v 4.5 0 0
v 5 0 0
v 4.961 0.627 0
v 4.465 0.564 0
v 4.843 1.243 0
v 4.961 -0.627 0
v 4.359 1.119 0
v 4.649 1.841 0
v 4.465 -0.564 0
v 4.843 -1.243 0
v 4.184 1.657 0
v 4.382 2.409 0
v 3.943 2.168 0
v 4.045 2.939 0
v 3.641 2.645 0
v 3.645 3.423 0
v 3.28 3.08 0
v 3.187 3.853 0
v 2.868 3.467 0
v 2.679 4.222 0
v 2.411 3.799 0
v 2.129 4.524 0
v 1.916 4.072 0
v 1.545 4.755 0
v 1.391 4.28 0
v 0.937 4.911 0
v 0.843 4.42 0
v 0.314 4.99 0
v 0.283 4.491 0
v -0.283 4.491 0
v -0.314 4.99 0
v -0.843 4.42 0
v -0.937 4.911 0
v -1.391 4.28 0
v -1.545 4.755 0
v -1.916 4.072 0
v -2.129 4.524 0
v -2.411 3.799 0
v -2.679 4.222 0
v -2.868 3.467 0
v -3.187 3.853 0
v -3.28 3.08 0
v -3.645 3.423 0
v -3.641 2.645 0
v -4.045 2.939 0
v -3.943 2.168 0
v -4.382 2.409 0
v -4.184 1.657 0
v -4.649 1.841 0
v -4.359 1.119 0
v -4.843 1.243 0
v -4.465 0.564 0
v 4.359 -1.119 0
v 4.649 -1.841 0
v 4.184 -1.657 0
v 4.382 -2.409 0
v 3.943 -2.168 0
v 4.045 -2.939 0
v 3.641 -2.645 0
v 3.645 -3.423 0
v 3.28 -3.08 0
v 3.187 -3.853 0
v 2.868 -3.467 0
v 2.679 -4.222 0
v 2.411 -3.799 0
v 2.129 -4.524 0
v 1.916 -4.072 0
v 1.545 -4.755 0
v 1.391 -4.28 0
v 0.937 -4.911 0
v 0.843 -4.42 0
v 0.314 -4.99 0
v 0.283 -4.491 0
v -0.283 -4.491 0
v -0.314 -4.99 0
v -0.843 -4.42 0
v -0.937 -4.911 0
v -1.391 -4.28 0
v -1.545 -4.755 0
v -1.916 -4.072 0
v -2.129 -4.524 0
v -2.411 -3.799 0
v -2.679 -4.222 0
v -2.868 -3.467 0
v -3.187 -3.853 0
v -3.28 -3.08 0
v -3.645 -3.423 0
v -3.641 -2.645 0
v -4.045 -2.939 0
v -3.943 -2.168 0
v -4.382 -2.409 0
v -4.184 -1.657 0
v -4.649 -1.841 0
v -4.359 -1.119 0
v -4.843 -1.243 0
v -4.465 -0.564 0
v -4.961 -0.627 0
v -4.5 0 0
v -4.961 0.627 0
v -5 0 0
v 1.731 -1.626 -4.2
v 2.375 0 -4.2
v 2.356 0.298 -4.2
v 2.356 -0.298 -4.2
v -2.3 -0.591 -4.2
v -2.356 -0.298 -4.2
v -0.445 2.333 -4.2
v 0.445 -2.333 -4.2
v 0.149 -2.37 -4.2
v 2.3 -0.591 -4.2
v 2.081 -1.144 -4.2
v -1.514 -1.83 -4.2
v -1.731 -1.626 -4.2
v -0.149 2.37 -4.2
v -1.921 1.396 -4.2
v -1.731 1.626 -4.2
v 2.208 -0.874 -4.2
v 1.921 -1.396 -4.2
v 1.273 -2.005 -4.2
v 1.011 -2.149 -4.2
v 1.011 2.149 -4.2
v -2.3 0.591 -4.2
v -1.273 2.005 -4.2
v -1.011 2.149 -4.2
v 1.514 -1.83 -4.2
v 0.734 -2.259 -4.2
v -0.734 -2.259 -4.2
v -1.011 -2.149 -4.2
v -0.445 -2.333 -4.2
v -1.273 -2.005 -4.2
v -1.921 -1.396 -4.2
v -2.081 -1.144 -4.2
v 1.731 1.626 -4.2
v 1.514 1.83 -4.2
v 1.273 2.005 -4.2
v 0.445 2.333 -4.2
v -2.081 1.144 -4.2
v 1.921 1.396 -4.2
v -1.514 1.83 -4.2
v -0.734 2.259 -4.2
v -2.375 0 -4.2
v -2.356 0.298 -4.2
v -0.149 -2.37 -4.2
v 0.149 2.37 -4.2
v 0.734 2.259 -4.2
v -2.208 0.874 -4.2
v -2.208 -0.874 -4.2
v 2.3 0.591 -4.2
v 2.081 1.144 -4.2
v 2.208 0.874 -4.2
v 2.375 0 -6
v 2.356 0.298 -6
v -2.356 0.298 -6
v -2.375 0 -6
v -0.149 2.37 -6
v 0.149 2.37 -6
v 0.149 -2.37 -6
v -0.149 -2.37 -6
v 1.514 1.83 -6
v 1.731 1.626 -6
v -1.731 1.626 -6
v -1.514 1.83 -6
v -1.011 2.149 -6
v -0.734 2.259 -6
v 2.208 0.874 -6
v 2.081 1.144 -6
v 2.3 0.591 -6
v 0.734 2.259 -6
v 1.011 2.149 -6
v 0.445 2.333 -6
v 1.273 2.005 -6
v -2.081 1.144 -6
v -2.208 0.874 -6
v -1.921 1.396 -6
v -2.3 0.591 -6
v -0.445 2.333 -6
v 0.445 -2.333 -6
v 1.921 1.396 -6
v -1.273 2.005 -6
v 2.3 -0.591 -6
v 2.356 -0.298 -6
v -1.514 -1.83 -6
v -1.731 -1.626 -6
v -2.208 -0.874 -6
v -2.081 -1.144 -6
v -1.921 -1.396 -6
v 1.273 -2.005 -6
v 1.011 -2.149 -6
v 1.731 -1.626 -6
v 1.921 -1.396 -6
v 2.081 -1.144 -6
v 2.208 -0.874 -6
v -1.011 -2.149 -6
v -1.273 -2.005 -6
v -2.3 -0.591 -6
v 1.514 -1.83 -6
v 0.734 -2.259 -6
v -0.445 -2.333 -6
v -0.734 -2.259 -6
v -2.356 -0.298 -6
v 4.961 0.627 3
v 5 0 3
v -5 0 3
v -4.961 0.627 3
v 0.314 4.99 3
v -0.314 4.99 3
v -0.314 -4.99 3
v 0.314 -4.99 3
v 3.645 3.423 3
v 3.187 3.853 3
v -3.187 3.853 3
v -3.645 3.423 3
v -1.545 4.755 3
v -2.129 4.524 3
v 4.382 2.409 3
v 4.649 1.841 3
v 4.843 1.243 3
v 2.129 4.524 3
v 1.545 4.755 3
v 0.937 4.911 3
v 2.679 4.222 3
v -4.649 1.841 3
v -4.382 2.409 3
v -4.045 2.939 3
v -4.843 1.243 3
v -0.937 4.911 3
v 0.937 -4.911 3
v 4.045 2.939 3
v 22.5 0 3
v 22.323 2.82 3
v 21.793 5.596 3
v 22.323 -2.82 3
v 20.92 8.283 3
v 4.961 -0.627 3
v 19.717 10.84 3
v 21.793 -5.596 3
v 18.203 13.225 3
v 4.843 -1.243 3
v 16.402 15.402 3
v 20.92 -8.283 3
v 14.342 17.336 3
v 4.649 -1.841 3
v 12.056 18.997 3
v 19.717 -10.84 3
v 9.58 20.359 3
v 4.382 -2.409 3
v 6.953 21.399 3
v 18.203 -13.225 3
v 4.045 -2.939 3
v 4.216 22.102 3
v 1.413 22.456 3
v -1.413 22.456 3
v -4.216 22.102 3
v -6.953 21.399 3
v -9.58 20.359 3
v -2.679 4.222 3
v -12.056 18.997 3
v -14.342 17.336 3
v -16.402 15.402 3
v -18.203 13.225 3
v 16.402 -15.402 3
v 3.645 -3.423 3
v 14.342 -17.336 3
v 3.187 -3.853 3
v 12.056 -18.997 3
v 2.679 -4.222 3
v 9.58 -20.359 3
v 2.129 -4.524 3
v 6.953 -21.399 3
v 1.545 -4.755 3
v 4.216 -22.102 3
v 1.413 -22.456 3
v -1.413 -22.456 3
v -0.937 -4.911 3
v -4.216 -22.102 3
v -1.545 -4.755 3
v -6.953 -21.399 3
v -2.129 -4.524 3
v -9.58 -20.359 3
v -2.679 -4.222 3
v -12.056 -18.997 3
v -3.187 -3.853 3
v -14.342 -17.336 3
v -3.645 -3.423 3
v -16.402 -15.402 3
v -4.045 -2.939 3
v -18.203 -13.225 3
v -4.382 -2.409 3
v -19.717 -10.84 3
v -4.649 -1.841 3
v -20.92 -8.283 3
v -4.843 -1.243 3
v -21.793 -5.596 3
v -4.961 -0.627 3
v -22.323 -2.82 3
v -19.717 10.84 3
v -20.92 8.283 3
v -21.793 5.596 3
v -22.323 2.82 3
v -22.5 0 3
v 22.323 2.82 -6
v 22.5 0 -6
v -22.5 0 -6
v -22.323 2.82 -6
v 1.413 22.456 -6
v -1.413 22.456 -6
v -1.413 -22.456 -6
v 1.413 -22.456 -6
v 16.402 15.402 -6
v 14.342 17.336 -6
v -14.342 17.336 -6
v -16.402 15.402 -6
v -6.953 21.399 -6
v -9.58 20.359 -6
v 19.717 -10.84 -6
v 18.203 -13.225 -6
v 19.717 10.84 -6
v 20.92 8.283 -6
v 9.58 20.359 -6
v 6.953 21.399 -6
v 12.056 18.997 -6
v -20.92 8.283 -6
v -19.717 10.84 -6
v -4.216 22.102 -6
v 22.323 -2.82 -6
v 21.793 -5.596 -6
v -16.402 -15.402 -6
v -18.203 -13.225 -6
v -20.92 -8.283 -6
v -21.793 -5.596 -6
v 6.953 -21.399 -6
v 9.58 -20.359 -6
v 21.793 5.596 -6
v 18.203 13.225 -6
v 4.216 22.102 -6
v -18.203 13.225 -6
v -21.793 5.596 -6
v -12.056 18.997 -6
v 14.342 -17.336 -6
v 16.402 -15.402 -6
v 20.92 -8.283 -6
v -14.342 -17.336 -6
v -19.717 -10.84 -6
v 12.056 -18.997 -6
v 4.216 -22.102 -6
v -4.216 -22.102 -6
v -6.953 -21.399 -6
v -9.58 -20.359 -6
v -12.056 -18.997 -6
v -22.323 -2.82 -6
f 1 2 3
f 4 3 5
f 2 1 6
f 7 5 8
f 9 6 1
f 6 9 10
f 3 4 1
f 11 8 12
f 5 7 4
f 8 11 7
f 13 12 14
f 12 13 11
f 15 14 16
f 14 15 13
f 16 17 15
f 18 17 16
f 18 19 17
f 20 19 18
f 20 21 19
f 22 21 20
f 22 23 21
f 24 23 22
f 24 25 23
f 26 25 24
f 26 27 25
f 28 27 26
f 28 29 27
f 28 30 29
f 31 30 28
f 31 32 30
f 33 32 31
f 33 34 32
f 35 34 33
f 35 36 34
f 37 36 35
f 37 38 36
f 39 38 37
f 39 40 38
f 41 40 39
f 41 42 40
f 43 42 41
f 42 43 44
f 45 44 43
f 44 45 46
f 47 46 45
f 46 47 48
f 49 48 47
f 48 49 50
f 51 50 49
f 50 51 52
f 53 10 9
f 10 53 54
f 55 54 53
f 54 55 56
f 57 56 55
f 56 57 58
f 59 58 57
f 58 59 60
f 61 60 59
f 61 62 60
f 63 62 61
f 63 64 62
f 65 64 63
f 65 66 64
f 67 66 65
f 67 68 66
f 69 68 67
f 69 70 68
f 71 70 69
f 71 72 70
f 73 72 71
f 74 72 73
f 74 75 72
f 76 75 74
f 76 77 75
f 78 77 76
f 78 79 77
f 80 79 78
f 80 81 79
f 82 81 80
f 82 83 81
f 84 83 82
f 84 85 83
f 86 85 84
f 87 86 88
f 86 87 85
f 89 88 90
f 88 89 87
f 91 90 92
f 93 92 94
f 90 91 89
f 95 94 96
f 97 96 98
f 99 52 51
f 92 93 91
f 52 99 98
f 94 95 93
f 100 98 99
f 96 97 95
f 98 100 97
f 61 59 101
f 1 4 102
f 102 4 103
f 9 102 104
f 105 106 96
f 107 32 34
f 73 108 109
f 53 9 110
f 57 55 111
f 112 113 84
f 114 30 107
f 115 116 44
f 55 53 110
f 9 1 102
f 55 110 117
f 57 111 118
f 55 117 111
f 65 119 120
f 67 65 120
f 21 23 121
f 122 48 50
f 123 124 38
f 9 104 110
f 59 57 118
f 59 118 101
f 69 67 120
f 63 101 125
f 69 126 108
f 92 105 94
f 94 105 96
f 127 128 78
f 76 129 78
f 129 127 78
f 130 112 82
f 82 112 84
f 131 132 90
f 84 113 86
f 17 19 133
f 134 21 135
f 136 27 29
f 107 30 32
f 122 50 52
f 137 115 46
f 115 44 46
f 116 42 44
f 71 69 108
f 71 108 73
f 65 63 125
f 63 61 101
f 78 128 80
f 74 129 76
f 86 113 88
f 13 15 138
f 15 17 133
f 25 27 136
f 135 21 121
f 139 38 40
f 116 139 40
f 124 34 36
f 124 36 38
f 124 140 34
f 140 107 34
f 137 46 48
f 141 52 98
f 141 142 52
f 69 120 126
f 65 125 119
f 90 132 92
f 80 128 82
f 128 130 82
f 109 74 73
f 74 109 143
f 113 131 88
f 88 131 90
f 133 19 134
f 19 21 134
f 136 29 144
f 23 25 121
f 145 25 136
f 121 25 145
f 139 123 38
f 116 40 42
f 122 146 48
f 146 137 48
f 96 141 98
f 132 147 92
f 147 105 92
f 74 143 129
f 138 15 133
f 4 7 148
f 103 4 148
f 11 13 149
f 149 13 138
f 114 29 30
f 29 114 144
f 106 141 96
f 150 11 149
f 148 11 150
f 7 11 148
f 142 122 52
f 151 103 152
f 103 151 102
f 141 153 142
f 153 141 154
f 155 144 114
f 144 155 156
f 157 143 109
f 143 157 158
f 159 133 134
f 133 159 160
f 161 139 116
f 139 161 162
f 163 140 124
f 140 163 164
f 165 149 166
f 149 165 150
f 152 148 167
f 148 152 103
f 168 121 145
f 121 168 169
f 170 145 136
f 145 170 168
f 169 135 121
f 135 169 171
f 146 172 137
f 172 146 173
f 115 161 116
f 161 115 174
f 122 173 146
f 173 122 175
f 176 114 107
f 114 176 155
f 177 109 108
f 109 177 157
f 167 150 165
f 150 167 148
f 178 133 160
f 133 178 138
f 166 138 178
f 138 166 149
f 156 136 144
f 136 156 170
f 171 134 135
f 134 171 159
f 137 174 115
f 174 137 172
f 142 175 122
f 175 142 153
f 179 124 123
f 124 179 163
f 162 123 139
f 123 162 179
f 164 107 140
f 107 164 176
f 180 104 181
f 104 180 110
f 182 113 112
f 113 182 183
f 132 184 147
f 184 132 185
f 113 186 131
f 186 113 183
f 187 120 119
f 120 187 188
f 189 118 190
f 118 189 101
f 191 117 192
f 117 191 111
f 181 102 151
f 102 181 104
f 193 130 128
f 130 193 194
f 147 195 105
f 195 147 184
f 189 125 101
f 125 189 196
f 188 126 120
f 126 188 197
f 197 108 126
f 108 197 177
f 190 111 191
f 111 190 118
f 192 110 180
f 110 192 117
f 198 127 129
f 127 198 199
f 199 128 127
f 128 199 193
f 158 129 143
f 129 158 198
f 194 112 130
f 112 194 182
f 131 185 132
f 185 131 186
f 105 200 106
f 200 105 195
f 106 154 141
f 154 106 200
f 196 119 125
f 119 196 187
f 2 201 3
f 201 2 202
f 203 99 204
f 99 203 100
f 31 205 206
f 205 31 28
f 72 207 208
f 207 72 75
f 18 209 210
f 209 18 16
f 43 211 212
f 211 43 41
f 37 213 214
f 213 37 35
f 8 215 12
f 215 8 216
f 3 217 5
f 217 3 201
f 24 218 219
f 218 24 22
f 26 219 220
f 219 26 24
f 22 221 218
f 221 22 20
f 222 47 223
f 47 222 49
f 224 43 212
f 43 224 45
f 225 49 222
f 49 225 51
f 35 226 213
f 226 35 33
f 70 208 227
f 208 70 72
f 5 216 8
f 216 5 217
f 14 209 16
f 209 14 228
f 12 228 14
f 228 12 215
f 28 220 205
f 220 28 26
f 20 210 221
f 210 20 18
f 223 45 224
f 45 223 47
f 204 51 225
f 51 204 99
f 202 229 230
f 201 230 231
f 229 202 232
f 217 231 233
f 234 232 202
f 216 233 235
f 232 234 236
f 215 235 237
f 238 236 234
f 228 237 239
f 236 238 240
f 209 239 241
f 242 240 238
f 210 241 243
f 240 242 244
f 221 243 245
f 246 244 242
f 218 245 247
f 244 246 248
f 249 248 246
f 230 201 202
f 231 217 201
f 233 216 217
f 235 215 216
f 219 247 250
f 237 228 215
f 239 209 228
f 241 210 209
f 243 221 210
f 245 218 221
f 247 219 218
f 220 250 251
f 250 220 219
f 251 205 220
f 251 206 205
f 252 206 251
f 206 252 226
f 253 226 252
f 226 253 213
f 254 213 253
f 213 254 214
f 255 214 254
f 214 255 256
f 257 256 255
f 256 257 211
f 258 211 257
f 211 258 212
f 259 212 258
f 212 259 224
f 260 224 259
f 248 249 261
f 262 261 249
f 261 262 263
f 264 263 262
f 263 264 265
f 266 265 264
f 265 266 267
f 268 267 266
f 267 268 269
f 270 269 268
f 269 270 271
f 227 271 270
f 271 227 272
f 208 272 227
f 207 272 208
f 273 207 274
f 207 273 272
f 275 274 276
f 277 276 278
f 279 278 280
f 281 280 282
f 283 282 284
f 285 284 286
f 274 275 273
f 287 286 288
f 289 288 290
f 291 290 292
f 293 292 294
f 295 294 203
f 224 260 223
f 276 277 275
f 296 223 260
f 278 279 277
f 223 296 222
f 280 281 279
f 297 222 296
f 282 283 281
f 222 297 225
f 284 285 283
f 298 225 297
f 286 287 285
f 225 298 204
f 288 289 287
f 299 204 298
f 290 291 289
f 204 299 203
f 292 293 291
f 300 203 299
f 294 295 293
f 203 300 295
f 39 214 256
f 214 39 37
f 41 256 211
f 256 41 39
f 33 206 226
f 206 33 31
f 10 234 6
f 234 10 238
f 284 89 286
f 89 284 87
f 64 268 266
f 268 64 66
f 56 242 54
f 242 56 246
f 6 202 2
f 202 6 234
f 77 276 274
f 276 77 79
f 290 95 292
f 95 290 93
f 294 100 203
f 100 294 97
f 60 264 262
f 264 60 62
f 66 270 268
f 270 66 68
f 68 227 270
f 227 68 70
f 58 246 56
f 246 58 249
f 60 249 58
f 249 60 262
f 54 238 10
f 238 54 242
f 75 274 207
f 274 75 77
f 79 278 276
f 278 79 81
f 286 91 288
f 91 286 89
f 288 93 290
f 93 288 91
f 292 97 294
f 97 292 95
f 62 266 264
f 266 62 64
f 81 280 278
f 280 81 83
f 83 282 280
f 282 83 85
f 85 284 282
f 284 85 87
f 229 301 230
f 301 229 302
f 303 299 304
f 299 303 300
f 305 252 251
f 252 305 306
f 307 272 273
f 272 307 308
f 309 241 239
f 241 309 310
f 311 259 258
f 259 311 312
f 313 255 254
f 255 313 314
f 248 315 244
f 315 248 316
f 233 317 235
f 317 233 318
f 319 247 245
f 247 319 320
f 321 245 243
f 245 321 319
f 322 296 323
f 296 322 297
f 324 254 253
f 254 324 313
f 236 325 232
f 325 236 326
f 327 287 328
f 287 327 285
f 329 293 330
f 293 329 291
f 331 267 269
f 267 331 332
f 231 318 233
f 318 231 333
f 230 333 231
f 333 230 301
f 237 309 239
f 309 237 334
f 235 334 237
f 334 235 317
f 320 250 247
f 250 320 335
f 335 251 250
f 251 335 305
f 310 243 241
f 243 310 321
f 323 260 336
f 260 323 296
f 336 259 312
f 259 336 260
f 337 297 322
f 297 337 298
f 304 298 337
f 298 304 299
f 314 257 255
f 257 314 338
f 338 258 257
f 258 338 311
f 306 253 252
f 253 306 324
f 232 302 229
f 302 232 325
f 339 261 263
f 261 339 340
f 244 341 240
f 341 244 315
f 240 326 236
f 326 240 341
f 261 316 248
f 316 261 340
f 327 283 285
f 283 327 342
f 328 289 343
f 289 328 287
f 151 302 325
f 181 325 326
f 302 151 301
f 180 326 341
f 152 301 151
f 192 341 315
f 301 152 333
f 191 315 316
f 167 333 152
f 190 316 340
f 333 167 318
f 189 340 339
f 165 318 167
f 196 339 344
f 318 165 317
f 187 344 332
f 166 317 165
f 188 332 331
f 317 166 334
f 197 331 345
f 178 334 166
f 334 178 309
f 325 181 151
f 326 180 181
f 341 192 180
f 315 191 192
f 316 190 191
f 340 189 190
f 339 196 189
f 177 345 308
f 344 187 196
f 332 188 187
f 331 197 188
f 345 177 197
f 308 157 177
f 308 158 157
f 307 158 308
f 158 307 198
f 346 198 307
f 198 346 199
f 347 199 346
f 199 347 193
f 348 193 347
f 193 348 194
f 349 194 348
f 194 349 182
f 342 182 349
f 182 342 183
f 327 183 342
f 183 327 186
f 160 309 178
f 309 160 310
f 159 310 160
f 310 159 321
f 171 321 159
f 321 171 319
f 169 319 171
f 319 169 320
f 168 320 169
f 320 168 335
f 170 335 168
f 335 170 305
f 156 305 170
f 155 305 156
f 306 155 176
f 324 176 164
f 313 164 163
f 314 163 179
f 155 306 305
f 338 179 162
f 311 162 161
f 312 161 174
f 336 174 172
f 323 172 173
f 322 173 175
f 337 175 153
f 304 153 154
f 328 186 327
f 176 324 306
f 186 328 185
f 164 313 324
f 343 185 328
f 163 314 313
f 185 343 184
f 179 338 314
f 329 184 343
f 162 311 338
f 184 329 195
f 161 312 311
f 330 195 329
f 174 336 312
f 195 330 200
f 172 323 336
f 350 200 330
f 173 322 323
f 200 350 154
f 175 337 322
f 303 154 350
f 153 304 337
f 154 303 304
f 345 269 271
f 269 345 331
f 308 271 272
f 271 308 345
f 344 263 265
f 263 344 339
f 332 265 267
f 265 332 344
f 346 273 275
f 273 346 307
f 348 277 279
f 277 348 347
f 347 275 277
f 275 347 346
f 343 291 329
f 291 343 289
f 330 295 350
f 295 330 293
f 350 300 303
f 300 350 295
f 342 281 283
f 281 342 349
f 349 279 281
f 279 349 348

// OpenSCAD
$fn = 50;

difference() {
	union() {
		translate(v = [0, 0, -6.0]) {
			cylinder(h = 9, r = 22.5);
		}
	}
	union() {
		translate(v = [0, 0, 0]) {
			rotate(a = [0, 0, 0]) {
				difference() {
					union() {
						translate(v = [0, 0, -9.0]) {
							cylinder(h = 9, r = 2.25);
						}
						translate(v = [0, 0, -4.2]) {
							cylinder(h = 4.2, r1 = 2.375, r2 = 4.5);
						}
						translate(v = [0, 0, -9.0]) {
							cylinder(h = 9, r = 2.375);
						}
						translate(v = [0, 0, -9.0]) {
							cylinder(h = 9, r = 2.25);
						}
					}
					union();
				}
			}
		}
		#cylinder(h = 3, r = 5.0);
	}
}
